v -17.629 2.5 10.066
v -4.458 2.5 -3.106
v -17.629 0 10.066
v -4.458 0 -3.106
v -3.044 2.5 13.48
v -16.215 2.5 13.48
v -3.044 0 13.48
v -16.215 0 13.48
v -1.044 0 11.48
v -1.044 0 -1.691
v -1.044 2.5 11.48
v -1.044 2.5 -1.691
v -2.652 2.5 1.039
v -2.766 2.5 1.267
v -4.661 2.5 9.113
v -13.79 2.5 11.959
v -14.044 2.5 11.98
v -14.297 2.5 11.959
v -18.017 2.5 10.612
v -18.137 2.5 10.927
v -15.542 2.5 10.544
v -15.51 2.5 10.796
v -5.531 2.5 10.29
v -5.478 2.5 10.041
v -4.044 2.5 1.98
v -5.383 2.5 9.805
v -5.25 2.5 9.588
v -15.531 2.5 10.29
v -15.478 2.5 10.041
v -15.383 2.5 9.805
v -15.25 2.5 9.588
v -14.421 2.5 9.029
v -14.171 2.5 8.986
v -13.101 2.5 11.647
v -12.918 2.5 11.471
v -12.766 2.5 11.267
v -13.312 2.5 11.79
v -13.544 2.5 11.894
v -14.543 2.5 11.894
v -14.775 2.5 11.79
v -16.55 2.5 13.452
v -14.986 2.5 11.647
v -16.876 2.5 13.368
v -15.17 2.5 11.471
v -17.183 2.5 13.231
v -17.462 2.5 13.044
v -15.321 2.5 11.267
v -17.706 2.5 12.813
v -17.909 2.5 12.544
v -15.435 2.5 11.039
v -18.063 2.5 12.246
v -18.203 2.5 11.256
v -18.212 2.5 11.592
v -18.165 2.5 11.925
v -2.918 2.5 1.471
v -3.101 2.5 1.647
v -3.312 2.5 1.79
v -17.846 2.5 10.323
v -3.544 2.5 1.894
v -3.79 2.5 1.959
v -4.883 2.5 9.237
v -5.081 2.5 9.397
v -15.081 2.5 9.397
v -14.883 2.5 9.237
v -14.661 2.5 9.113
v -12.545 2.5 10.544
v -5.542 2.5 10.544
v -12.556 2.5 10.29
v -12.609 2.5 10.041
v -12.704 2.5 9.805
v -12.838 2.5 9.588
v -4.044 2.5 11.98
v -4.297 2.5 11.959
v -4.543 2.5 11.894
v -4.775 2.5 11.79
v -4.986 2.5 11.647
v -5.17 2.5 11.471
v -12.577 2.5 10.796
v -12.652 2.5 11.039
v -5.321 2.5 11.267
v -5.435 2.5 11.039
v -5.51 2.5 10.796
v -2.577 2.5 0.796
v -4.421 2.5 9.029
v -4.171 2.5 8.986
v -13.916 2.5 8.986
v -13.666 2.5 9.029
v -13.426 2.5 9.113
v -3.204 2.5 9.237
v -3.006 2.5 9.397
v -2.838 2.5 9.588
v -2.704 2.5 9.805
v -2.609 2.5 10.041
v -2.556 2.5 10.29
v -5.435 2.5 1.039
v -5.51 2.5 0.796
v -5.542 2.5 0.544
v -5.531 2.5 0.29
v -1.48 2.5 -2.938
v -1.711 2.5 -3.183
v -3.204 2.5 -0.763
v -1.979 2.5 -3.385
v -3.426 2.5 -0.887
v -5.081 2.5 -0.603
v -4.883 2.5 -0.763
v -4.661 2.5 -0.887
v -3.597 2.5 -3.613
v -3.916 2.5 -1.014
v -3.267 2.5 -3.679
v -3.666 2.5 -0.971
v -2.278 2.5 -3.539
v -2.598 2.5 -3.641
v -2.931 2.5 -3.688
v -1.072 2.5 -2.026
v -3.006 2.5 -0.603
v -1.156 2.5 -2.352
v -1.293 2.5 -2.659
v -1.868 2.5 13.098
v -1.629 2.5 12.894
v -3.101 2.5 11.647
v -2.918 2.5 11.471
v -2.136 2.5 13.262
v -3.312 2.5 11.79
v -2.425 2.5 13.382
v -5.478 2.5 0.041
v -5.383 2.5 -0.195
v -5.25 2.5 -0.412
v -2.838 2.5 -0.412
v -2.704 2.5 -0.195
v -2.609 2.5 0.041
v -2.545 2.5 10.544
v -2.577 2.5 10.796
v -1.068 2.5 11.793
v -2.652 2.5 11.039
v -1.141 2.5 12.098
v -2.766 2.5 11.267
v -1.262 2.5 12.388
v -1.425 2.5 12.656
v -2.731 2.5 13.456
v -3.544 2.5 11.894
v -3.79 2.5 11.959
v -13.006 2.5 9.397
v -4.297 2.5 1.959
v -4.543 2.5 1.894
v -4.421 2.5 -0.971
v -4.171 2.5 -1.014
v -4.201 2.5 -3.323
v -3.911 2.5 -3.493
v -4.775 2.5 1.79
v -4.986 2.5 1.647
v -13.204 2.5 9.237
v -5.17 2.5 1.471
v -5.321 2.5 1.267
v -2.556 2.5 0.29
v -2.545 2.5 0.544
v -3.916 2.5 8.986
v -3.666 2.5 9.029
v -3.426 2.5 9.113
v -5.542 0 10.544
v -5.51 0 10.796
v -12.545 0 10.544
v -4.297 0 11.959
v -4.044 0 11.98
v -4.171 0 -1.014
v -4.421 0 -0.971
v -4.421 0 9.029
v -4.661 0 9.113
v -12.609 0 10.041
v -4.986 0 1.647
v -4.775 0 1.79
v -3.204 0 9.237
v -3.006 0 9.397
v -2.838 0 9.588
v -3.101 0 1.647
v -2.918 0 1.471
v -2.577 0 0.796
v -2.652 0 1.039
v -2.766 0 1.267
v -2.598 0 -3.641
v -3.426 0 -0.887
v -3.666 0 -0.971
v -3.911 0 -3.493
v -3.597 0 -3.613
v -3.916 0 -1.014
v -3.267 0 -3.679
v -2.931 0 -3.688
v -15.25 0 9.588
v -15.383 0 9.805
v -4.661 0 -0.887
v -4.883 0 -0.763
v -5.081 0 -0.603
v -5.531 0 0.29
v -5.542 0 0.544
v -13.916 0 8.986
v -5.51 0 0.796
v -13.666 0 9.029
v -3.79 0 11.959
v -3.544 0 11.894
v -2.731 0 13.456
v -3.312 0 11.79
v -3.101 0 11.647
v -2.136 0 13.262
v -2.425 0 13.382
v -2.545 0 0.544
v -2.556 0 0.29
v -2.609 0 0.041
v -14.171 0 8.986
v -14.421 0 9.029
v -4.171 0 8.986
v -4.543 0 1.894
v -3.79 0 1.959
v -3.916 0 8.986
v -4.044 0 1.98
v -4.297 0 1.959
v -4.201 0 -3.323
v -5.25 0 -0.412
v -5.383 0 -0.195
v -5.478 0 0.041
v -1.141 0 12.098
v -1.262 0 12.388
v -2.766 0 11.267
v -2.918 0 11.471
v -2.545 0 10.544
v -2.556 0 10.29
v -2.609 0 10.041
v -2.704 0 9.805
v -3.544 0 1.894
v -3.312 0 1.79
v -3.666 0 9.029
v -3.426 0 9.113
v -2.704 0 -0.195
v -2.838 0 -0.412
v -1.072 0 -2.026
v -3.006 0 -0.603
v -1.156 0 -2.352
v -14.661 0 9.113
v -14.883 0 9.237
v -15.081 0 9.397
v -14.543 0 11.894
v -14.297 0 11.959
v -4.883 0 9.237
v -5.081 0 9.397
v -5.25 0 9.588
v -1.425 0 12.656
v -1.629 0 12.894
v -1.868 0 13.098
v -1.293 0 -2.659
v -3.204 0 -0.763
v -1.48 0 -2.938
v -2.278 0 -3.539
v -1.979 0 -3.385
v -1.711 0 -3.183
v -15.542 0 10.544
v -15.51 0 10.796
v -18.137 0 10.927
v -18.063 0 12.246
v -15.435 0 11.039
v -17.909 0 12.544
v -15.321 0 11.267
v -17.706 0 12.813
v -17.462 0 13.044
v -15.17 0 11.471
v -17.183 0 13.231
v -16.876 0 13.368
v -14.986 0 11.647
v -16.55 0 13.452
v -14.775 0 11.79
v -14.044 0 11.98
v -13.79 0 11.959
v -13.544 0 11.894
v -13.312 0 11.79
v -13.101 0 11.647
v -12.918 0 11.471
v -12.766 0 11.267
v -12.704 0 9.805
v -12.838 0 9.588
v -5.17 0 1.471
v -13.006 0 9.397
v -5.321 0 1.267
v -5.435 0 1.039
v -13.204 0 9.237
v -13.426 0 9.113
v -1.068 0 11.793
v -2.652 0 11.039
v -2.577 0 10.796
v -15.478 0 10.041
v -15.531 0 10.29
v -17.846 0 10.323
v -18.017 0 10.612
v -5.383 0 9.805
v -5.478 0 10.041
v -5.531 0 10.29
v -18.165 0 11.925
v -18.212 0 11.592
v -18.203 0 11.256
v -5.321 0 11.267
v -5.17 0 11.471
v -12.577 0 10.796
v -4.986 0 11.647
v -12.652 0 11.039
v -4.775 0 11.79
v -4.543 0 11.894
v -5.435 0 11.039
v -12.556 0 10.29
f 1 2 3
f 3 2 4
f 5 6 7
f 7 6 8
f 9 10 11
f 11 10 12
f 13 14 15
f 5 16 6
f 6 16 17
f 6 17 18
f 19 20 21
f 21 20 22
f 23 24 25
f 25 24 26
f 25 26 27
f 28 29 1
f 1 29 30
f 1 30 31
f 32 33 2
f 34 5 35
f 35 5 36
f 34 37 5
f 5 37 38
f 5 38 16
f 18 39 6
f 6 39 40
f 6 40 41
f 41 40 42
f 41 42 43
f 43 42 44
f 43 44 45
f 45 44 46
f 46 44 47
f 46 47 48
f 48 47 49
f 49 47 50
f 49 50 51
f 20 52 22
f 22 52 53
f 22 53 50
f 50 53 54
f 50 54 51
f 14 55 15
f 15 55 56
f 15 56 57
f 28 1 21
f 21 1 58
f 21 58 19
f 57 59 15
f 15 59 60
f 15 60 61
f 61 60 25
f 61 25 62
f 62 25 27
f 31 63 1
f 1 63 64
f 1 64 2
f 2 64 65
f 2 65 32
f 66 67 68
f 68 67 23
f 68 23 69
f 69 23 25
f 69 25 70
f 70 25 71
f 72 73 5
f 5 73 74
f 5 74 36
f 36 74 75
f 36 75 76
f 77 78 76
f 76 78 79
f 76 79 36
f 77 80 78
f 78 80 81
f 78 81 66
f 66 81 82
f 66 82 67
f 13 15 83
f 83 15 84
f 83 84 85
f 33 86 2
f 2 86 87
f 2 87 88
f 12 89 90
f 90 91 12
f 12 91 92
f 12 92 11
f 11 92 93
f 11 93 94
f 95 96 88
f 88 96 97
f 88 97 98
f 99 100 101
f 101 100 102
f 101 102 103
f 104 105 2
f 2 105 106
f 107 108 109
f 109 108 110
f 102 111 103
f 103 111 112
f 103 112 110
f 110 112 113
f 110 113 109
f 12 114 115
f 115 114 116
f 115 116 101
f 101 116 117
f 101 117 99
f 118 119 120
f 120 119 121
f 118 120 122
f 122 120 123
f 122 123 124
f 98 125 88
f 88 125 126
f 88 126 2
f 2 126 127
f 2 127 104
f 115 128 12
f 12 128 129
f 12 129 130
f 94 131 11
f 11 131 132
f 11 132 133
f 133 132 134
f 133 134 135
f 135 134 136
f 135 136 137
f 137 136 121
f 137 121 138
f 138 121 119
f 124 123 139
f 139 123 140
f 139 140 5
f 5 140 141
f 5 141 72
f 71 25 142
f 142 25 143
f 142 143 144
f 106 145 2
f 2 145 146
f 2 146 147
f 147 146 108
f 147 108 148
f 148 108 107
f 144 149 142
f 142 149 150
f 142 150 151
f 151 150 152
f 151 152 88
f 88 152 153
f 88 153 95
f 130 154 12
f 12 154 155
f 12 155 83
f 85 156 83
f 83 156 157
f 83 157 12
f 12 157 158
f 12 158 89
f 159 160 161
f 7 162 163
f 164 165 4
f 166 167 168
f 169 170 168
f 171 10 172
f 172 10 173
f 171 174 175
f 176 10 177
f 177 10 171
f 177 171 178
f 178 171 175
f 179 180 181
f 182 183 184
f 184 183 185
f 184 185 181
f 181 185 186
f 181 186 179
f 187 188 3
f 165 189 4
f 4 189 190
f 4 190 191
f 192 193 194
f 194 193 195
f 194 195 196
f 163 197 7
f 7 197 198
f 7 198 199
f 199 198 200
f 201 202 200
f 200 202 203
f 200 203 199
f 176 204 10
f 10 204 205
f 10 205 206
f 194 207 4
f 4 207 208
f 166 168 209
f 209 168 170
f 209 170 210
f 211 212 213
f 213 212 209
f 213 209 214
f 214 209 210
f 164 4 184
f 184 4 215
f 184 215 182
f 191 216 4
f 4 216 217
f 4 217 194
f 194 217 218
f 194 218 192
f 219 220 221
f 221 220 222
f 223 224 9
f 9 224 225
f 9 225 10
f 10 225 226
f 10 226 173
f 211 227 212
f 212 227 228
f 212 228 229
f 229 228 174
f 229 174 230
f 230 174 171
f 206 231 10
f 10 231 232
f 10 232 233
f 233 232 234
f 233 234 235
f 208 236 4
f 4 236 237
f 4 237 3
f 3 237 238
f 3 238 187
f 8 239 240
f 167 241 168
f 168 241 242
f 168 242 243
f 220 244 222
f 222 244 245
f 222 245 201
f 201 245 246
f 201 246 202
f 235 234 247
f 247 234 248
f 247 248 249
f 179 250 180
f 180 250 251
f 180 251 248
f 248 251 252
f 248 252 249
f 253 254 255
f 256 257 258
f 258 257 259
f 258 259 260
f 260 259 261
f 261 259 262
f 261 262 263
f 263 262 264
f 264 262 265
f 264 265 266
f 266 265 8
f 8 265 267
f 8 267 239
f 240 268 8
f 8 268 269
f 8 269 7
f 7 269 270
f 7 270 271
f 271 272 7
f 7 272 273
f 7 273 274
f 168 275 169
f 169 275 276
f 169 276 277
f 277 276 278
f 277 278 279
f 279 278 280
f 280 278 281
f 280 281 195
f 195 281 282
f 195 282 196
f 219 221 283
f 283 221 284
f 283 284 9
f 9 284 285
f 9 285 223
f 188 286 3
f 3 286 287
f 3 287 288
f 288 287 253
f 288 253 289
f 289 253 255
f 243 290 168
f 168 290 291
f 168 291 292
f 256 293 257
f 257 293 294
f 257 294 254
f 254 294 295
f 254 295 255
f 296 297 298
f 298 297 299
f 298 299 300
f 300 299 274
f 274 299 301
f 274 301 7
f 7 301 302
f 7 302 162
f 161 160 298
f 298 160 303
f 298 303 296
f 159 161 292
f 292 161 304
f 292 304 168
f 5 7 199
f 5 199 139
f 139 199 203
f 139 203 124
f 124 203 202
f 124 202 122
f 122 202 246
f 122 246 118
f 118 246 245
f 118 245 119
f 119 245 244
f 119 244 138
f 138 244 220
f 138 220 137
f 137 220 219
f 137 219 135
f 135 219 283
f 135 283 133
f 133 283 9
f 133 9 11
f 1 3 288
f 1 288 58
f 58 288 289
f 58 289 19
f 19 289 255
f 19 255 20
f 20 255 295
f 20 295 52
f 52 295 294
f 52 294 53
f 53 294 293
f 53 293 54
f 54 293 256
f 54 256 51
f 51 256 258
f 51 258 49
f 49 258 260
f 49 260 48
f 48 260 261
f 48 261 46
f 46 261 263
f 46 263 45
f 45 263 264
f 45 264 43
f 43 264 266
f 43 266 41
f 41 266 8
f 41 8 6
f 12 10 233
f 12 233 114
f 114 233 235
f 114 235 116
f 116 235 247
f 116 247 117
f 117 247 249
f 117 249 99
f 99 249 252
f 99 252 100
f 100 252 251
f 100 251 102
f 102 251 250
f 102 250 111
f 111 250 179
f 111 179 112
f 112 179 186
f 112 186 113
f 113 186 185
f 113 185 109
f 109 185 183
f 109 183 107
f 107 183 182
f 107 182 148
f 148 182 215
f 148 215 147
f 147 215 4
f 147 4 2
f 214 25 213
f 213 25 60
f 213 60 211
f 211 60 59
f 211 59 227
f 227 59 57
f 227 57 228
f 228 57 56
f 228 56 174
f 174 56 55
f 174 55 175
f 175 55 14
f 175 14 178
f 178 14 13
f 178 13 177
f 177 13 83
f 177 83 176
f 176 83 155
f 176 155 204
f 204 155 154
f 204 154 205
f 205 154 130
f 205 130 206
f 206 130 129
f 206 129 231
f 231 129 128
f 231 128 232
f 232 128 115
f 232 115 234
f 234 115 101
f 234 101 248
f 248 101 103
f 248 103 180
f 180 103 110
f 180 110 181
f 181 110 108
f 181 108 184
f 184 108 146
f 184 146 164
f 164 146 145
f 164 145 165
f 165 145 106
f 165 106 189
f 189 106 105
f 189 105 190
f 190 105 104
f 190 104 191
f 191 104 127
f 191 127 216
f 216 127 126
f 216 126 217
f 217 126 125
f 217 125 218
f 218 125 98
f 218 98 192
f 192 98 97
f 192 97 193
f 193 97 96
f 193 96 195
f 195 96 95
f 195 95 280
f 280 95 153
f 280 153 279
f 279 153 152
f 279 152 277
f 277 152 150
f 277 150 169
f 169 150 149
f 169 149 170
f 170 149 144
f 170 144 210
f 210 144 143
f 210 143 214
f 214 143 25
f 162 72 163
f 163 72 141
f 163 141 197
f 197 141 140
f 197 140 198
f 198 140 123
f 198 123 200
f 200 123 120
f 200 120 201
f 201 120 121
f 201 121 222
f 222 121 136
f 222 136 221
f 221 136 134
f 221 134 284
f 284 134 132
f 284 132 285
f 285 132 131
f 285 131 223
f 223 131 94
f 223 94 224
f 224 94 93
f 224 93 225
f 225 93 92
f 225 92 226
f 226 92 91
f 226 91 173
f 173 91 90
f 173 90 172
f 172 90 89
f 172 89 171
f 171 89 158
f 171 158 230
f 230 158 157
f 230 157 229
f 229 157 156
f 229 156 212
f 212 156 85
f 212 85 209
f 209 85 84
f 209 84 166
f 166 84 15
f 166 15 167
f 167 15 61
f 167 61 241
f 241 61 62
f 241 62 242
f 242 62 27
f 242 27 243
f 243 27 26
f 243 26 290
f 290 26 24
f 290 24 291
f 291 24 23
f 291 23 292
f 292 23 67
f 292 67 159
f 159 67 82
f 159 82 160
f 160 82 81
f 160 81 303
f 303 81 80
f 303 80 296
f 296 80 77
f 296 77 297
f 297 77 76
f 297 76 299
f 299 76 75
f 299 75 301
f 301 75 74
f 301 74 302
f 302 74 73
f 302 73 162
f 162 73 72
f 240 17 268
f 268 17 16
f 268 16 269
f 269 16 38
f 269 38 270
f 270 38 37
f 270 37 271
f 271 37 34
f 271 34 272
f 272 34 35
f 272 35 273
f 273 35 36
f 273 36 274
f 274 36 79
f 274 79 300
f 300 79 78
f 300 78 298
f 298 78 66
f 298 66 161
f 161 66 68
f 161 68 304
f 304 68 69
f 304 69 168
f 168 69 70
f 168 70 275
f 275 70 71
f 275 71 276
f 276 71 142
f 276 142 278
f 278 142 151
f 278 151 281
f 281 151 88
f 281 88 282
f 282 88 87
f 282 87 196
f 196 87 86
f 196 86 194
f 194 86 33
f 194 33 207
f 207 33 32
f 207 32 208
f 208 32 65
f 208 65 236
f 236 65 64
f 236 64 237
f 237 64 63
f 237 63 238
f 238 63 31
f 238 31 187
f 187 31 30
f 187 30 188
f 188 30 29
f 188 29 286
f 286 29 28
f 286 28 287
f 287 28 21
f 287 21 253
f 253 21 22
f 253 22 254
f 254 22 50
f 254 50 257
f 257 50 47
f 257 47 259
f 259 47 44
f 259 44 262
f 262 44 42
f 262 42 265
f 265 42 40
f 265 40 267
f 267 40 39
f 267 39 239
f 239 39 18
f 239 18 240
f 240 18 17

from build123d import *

# Parameters (mm, degrees)
BOSS_EXTRUDE1_DEPTH = 2.5
FILLET1_R           = 2
SKETCH2_R           = 1.5
CUT_EXTRUDE1_DEPTH  = 23.7981406


with BuildPart() as part:
    # Sketch1 → Boss-Extrude1 (new body)
    with BuildSketch(Plane(origin=(0, 0, 0), x_dir=(1, 0, 0), z_dir=(0, 1, 0))):
        Polygon((-1.043526837, 6.519816127), (-1.043526837, -13.480183873), (-21.043526837, -13.480183873), align=None)
    extrude(amount=BOSS_EXTRUDE1_DEPTH)

    # Fillet1
    fillet1_edges = [part.edges().sort_by_distance(p)[0] for p in [
        (-1.043526837, 1.25, -6.519816127),
        (-1.043526837, 1.25, 13.480183873),
        (-21.043526837, 1.25, 13.480183873),
    ]]
    fillet(fillet1_edges, radius=FILLET1_R)

    # Sketch2 → Cut-Extrude1 (cut, through all)
    with BuildSketch(Plane(origin=(0, 2.5, 0), x_dir=(1, 0, 0), z_dir=(0, 1, 0))):
        with Locations(Location((-4.043526837, -0.480183873, 0), (0, 0, 270))):
            Circle(SKETCH2_R)
        with Locations(Location((-4.043526837, -10.480183873, 0), (0, 0, 270))):
            Circle(SKETCH2_R)
        with Locations(Location((-14.043526837, -10.480183873, 0), (0, 0, 270))):
            Circle(SKETCH2_R)
    extrude(amount=-CUT_EXTRUDE1_DEPTH, mode=Mode.SUBTRACT)


solid = part.part
